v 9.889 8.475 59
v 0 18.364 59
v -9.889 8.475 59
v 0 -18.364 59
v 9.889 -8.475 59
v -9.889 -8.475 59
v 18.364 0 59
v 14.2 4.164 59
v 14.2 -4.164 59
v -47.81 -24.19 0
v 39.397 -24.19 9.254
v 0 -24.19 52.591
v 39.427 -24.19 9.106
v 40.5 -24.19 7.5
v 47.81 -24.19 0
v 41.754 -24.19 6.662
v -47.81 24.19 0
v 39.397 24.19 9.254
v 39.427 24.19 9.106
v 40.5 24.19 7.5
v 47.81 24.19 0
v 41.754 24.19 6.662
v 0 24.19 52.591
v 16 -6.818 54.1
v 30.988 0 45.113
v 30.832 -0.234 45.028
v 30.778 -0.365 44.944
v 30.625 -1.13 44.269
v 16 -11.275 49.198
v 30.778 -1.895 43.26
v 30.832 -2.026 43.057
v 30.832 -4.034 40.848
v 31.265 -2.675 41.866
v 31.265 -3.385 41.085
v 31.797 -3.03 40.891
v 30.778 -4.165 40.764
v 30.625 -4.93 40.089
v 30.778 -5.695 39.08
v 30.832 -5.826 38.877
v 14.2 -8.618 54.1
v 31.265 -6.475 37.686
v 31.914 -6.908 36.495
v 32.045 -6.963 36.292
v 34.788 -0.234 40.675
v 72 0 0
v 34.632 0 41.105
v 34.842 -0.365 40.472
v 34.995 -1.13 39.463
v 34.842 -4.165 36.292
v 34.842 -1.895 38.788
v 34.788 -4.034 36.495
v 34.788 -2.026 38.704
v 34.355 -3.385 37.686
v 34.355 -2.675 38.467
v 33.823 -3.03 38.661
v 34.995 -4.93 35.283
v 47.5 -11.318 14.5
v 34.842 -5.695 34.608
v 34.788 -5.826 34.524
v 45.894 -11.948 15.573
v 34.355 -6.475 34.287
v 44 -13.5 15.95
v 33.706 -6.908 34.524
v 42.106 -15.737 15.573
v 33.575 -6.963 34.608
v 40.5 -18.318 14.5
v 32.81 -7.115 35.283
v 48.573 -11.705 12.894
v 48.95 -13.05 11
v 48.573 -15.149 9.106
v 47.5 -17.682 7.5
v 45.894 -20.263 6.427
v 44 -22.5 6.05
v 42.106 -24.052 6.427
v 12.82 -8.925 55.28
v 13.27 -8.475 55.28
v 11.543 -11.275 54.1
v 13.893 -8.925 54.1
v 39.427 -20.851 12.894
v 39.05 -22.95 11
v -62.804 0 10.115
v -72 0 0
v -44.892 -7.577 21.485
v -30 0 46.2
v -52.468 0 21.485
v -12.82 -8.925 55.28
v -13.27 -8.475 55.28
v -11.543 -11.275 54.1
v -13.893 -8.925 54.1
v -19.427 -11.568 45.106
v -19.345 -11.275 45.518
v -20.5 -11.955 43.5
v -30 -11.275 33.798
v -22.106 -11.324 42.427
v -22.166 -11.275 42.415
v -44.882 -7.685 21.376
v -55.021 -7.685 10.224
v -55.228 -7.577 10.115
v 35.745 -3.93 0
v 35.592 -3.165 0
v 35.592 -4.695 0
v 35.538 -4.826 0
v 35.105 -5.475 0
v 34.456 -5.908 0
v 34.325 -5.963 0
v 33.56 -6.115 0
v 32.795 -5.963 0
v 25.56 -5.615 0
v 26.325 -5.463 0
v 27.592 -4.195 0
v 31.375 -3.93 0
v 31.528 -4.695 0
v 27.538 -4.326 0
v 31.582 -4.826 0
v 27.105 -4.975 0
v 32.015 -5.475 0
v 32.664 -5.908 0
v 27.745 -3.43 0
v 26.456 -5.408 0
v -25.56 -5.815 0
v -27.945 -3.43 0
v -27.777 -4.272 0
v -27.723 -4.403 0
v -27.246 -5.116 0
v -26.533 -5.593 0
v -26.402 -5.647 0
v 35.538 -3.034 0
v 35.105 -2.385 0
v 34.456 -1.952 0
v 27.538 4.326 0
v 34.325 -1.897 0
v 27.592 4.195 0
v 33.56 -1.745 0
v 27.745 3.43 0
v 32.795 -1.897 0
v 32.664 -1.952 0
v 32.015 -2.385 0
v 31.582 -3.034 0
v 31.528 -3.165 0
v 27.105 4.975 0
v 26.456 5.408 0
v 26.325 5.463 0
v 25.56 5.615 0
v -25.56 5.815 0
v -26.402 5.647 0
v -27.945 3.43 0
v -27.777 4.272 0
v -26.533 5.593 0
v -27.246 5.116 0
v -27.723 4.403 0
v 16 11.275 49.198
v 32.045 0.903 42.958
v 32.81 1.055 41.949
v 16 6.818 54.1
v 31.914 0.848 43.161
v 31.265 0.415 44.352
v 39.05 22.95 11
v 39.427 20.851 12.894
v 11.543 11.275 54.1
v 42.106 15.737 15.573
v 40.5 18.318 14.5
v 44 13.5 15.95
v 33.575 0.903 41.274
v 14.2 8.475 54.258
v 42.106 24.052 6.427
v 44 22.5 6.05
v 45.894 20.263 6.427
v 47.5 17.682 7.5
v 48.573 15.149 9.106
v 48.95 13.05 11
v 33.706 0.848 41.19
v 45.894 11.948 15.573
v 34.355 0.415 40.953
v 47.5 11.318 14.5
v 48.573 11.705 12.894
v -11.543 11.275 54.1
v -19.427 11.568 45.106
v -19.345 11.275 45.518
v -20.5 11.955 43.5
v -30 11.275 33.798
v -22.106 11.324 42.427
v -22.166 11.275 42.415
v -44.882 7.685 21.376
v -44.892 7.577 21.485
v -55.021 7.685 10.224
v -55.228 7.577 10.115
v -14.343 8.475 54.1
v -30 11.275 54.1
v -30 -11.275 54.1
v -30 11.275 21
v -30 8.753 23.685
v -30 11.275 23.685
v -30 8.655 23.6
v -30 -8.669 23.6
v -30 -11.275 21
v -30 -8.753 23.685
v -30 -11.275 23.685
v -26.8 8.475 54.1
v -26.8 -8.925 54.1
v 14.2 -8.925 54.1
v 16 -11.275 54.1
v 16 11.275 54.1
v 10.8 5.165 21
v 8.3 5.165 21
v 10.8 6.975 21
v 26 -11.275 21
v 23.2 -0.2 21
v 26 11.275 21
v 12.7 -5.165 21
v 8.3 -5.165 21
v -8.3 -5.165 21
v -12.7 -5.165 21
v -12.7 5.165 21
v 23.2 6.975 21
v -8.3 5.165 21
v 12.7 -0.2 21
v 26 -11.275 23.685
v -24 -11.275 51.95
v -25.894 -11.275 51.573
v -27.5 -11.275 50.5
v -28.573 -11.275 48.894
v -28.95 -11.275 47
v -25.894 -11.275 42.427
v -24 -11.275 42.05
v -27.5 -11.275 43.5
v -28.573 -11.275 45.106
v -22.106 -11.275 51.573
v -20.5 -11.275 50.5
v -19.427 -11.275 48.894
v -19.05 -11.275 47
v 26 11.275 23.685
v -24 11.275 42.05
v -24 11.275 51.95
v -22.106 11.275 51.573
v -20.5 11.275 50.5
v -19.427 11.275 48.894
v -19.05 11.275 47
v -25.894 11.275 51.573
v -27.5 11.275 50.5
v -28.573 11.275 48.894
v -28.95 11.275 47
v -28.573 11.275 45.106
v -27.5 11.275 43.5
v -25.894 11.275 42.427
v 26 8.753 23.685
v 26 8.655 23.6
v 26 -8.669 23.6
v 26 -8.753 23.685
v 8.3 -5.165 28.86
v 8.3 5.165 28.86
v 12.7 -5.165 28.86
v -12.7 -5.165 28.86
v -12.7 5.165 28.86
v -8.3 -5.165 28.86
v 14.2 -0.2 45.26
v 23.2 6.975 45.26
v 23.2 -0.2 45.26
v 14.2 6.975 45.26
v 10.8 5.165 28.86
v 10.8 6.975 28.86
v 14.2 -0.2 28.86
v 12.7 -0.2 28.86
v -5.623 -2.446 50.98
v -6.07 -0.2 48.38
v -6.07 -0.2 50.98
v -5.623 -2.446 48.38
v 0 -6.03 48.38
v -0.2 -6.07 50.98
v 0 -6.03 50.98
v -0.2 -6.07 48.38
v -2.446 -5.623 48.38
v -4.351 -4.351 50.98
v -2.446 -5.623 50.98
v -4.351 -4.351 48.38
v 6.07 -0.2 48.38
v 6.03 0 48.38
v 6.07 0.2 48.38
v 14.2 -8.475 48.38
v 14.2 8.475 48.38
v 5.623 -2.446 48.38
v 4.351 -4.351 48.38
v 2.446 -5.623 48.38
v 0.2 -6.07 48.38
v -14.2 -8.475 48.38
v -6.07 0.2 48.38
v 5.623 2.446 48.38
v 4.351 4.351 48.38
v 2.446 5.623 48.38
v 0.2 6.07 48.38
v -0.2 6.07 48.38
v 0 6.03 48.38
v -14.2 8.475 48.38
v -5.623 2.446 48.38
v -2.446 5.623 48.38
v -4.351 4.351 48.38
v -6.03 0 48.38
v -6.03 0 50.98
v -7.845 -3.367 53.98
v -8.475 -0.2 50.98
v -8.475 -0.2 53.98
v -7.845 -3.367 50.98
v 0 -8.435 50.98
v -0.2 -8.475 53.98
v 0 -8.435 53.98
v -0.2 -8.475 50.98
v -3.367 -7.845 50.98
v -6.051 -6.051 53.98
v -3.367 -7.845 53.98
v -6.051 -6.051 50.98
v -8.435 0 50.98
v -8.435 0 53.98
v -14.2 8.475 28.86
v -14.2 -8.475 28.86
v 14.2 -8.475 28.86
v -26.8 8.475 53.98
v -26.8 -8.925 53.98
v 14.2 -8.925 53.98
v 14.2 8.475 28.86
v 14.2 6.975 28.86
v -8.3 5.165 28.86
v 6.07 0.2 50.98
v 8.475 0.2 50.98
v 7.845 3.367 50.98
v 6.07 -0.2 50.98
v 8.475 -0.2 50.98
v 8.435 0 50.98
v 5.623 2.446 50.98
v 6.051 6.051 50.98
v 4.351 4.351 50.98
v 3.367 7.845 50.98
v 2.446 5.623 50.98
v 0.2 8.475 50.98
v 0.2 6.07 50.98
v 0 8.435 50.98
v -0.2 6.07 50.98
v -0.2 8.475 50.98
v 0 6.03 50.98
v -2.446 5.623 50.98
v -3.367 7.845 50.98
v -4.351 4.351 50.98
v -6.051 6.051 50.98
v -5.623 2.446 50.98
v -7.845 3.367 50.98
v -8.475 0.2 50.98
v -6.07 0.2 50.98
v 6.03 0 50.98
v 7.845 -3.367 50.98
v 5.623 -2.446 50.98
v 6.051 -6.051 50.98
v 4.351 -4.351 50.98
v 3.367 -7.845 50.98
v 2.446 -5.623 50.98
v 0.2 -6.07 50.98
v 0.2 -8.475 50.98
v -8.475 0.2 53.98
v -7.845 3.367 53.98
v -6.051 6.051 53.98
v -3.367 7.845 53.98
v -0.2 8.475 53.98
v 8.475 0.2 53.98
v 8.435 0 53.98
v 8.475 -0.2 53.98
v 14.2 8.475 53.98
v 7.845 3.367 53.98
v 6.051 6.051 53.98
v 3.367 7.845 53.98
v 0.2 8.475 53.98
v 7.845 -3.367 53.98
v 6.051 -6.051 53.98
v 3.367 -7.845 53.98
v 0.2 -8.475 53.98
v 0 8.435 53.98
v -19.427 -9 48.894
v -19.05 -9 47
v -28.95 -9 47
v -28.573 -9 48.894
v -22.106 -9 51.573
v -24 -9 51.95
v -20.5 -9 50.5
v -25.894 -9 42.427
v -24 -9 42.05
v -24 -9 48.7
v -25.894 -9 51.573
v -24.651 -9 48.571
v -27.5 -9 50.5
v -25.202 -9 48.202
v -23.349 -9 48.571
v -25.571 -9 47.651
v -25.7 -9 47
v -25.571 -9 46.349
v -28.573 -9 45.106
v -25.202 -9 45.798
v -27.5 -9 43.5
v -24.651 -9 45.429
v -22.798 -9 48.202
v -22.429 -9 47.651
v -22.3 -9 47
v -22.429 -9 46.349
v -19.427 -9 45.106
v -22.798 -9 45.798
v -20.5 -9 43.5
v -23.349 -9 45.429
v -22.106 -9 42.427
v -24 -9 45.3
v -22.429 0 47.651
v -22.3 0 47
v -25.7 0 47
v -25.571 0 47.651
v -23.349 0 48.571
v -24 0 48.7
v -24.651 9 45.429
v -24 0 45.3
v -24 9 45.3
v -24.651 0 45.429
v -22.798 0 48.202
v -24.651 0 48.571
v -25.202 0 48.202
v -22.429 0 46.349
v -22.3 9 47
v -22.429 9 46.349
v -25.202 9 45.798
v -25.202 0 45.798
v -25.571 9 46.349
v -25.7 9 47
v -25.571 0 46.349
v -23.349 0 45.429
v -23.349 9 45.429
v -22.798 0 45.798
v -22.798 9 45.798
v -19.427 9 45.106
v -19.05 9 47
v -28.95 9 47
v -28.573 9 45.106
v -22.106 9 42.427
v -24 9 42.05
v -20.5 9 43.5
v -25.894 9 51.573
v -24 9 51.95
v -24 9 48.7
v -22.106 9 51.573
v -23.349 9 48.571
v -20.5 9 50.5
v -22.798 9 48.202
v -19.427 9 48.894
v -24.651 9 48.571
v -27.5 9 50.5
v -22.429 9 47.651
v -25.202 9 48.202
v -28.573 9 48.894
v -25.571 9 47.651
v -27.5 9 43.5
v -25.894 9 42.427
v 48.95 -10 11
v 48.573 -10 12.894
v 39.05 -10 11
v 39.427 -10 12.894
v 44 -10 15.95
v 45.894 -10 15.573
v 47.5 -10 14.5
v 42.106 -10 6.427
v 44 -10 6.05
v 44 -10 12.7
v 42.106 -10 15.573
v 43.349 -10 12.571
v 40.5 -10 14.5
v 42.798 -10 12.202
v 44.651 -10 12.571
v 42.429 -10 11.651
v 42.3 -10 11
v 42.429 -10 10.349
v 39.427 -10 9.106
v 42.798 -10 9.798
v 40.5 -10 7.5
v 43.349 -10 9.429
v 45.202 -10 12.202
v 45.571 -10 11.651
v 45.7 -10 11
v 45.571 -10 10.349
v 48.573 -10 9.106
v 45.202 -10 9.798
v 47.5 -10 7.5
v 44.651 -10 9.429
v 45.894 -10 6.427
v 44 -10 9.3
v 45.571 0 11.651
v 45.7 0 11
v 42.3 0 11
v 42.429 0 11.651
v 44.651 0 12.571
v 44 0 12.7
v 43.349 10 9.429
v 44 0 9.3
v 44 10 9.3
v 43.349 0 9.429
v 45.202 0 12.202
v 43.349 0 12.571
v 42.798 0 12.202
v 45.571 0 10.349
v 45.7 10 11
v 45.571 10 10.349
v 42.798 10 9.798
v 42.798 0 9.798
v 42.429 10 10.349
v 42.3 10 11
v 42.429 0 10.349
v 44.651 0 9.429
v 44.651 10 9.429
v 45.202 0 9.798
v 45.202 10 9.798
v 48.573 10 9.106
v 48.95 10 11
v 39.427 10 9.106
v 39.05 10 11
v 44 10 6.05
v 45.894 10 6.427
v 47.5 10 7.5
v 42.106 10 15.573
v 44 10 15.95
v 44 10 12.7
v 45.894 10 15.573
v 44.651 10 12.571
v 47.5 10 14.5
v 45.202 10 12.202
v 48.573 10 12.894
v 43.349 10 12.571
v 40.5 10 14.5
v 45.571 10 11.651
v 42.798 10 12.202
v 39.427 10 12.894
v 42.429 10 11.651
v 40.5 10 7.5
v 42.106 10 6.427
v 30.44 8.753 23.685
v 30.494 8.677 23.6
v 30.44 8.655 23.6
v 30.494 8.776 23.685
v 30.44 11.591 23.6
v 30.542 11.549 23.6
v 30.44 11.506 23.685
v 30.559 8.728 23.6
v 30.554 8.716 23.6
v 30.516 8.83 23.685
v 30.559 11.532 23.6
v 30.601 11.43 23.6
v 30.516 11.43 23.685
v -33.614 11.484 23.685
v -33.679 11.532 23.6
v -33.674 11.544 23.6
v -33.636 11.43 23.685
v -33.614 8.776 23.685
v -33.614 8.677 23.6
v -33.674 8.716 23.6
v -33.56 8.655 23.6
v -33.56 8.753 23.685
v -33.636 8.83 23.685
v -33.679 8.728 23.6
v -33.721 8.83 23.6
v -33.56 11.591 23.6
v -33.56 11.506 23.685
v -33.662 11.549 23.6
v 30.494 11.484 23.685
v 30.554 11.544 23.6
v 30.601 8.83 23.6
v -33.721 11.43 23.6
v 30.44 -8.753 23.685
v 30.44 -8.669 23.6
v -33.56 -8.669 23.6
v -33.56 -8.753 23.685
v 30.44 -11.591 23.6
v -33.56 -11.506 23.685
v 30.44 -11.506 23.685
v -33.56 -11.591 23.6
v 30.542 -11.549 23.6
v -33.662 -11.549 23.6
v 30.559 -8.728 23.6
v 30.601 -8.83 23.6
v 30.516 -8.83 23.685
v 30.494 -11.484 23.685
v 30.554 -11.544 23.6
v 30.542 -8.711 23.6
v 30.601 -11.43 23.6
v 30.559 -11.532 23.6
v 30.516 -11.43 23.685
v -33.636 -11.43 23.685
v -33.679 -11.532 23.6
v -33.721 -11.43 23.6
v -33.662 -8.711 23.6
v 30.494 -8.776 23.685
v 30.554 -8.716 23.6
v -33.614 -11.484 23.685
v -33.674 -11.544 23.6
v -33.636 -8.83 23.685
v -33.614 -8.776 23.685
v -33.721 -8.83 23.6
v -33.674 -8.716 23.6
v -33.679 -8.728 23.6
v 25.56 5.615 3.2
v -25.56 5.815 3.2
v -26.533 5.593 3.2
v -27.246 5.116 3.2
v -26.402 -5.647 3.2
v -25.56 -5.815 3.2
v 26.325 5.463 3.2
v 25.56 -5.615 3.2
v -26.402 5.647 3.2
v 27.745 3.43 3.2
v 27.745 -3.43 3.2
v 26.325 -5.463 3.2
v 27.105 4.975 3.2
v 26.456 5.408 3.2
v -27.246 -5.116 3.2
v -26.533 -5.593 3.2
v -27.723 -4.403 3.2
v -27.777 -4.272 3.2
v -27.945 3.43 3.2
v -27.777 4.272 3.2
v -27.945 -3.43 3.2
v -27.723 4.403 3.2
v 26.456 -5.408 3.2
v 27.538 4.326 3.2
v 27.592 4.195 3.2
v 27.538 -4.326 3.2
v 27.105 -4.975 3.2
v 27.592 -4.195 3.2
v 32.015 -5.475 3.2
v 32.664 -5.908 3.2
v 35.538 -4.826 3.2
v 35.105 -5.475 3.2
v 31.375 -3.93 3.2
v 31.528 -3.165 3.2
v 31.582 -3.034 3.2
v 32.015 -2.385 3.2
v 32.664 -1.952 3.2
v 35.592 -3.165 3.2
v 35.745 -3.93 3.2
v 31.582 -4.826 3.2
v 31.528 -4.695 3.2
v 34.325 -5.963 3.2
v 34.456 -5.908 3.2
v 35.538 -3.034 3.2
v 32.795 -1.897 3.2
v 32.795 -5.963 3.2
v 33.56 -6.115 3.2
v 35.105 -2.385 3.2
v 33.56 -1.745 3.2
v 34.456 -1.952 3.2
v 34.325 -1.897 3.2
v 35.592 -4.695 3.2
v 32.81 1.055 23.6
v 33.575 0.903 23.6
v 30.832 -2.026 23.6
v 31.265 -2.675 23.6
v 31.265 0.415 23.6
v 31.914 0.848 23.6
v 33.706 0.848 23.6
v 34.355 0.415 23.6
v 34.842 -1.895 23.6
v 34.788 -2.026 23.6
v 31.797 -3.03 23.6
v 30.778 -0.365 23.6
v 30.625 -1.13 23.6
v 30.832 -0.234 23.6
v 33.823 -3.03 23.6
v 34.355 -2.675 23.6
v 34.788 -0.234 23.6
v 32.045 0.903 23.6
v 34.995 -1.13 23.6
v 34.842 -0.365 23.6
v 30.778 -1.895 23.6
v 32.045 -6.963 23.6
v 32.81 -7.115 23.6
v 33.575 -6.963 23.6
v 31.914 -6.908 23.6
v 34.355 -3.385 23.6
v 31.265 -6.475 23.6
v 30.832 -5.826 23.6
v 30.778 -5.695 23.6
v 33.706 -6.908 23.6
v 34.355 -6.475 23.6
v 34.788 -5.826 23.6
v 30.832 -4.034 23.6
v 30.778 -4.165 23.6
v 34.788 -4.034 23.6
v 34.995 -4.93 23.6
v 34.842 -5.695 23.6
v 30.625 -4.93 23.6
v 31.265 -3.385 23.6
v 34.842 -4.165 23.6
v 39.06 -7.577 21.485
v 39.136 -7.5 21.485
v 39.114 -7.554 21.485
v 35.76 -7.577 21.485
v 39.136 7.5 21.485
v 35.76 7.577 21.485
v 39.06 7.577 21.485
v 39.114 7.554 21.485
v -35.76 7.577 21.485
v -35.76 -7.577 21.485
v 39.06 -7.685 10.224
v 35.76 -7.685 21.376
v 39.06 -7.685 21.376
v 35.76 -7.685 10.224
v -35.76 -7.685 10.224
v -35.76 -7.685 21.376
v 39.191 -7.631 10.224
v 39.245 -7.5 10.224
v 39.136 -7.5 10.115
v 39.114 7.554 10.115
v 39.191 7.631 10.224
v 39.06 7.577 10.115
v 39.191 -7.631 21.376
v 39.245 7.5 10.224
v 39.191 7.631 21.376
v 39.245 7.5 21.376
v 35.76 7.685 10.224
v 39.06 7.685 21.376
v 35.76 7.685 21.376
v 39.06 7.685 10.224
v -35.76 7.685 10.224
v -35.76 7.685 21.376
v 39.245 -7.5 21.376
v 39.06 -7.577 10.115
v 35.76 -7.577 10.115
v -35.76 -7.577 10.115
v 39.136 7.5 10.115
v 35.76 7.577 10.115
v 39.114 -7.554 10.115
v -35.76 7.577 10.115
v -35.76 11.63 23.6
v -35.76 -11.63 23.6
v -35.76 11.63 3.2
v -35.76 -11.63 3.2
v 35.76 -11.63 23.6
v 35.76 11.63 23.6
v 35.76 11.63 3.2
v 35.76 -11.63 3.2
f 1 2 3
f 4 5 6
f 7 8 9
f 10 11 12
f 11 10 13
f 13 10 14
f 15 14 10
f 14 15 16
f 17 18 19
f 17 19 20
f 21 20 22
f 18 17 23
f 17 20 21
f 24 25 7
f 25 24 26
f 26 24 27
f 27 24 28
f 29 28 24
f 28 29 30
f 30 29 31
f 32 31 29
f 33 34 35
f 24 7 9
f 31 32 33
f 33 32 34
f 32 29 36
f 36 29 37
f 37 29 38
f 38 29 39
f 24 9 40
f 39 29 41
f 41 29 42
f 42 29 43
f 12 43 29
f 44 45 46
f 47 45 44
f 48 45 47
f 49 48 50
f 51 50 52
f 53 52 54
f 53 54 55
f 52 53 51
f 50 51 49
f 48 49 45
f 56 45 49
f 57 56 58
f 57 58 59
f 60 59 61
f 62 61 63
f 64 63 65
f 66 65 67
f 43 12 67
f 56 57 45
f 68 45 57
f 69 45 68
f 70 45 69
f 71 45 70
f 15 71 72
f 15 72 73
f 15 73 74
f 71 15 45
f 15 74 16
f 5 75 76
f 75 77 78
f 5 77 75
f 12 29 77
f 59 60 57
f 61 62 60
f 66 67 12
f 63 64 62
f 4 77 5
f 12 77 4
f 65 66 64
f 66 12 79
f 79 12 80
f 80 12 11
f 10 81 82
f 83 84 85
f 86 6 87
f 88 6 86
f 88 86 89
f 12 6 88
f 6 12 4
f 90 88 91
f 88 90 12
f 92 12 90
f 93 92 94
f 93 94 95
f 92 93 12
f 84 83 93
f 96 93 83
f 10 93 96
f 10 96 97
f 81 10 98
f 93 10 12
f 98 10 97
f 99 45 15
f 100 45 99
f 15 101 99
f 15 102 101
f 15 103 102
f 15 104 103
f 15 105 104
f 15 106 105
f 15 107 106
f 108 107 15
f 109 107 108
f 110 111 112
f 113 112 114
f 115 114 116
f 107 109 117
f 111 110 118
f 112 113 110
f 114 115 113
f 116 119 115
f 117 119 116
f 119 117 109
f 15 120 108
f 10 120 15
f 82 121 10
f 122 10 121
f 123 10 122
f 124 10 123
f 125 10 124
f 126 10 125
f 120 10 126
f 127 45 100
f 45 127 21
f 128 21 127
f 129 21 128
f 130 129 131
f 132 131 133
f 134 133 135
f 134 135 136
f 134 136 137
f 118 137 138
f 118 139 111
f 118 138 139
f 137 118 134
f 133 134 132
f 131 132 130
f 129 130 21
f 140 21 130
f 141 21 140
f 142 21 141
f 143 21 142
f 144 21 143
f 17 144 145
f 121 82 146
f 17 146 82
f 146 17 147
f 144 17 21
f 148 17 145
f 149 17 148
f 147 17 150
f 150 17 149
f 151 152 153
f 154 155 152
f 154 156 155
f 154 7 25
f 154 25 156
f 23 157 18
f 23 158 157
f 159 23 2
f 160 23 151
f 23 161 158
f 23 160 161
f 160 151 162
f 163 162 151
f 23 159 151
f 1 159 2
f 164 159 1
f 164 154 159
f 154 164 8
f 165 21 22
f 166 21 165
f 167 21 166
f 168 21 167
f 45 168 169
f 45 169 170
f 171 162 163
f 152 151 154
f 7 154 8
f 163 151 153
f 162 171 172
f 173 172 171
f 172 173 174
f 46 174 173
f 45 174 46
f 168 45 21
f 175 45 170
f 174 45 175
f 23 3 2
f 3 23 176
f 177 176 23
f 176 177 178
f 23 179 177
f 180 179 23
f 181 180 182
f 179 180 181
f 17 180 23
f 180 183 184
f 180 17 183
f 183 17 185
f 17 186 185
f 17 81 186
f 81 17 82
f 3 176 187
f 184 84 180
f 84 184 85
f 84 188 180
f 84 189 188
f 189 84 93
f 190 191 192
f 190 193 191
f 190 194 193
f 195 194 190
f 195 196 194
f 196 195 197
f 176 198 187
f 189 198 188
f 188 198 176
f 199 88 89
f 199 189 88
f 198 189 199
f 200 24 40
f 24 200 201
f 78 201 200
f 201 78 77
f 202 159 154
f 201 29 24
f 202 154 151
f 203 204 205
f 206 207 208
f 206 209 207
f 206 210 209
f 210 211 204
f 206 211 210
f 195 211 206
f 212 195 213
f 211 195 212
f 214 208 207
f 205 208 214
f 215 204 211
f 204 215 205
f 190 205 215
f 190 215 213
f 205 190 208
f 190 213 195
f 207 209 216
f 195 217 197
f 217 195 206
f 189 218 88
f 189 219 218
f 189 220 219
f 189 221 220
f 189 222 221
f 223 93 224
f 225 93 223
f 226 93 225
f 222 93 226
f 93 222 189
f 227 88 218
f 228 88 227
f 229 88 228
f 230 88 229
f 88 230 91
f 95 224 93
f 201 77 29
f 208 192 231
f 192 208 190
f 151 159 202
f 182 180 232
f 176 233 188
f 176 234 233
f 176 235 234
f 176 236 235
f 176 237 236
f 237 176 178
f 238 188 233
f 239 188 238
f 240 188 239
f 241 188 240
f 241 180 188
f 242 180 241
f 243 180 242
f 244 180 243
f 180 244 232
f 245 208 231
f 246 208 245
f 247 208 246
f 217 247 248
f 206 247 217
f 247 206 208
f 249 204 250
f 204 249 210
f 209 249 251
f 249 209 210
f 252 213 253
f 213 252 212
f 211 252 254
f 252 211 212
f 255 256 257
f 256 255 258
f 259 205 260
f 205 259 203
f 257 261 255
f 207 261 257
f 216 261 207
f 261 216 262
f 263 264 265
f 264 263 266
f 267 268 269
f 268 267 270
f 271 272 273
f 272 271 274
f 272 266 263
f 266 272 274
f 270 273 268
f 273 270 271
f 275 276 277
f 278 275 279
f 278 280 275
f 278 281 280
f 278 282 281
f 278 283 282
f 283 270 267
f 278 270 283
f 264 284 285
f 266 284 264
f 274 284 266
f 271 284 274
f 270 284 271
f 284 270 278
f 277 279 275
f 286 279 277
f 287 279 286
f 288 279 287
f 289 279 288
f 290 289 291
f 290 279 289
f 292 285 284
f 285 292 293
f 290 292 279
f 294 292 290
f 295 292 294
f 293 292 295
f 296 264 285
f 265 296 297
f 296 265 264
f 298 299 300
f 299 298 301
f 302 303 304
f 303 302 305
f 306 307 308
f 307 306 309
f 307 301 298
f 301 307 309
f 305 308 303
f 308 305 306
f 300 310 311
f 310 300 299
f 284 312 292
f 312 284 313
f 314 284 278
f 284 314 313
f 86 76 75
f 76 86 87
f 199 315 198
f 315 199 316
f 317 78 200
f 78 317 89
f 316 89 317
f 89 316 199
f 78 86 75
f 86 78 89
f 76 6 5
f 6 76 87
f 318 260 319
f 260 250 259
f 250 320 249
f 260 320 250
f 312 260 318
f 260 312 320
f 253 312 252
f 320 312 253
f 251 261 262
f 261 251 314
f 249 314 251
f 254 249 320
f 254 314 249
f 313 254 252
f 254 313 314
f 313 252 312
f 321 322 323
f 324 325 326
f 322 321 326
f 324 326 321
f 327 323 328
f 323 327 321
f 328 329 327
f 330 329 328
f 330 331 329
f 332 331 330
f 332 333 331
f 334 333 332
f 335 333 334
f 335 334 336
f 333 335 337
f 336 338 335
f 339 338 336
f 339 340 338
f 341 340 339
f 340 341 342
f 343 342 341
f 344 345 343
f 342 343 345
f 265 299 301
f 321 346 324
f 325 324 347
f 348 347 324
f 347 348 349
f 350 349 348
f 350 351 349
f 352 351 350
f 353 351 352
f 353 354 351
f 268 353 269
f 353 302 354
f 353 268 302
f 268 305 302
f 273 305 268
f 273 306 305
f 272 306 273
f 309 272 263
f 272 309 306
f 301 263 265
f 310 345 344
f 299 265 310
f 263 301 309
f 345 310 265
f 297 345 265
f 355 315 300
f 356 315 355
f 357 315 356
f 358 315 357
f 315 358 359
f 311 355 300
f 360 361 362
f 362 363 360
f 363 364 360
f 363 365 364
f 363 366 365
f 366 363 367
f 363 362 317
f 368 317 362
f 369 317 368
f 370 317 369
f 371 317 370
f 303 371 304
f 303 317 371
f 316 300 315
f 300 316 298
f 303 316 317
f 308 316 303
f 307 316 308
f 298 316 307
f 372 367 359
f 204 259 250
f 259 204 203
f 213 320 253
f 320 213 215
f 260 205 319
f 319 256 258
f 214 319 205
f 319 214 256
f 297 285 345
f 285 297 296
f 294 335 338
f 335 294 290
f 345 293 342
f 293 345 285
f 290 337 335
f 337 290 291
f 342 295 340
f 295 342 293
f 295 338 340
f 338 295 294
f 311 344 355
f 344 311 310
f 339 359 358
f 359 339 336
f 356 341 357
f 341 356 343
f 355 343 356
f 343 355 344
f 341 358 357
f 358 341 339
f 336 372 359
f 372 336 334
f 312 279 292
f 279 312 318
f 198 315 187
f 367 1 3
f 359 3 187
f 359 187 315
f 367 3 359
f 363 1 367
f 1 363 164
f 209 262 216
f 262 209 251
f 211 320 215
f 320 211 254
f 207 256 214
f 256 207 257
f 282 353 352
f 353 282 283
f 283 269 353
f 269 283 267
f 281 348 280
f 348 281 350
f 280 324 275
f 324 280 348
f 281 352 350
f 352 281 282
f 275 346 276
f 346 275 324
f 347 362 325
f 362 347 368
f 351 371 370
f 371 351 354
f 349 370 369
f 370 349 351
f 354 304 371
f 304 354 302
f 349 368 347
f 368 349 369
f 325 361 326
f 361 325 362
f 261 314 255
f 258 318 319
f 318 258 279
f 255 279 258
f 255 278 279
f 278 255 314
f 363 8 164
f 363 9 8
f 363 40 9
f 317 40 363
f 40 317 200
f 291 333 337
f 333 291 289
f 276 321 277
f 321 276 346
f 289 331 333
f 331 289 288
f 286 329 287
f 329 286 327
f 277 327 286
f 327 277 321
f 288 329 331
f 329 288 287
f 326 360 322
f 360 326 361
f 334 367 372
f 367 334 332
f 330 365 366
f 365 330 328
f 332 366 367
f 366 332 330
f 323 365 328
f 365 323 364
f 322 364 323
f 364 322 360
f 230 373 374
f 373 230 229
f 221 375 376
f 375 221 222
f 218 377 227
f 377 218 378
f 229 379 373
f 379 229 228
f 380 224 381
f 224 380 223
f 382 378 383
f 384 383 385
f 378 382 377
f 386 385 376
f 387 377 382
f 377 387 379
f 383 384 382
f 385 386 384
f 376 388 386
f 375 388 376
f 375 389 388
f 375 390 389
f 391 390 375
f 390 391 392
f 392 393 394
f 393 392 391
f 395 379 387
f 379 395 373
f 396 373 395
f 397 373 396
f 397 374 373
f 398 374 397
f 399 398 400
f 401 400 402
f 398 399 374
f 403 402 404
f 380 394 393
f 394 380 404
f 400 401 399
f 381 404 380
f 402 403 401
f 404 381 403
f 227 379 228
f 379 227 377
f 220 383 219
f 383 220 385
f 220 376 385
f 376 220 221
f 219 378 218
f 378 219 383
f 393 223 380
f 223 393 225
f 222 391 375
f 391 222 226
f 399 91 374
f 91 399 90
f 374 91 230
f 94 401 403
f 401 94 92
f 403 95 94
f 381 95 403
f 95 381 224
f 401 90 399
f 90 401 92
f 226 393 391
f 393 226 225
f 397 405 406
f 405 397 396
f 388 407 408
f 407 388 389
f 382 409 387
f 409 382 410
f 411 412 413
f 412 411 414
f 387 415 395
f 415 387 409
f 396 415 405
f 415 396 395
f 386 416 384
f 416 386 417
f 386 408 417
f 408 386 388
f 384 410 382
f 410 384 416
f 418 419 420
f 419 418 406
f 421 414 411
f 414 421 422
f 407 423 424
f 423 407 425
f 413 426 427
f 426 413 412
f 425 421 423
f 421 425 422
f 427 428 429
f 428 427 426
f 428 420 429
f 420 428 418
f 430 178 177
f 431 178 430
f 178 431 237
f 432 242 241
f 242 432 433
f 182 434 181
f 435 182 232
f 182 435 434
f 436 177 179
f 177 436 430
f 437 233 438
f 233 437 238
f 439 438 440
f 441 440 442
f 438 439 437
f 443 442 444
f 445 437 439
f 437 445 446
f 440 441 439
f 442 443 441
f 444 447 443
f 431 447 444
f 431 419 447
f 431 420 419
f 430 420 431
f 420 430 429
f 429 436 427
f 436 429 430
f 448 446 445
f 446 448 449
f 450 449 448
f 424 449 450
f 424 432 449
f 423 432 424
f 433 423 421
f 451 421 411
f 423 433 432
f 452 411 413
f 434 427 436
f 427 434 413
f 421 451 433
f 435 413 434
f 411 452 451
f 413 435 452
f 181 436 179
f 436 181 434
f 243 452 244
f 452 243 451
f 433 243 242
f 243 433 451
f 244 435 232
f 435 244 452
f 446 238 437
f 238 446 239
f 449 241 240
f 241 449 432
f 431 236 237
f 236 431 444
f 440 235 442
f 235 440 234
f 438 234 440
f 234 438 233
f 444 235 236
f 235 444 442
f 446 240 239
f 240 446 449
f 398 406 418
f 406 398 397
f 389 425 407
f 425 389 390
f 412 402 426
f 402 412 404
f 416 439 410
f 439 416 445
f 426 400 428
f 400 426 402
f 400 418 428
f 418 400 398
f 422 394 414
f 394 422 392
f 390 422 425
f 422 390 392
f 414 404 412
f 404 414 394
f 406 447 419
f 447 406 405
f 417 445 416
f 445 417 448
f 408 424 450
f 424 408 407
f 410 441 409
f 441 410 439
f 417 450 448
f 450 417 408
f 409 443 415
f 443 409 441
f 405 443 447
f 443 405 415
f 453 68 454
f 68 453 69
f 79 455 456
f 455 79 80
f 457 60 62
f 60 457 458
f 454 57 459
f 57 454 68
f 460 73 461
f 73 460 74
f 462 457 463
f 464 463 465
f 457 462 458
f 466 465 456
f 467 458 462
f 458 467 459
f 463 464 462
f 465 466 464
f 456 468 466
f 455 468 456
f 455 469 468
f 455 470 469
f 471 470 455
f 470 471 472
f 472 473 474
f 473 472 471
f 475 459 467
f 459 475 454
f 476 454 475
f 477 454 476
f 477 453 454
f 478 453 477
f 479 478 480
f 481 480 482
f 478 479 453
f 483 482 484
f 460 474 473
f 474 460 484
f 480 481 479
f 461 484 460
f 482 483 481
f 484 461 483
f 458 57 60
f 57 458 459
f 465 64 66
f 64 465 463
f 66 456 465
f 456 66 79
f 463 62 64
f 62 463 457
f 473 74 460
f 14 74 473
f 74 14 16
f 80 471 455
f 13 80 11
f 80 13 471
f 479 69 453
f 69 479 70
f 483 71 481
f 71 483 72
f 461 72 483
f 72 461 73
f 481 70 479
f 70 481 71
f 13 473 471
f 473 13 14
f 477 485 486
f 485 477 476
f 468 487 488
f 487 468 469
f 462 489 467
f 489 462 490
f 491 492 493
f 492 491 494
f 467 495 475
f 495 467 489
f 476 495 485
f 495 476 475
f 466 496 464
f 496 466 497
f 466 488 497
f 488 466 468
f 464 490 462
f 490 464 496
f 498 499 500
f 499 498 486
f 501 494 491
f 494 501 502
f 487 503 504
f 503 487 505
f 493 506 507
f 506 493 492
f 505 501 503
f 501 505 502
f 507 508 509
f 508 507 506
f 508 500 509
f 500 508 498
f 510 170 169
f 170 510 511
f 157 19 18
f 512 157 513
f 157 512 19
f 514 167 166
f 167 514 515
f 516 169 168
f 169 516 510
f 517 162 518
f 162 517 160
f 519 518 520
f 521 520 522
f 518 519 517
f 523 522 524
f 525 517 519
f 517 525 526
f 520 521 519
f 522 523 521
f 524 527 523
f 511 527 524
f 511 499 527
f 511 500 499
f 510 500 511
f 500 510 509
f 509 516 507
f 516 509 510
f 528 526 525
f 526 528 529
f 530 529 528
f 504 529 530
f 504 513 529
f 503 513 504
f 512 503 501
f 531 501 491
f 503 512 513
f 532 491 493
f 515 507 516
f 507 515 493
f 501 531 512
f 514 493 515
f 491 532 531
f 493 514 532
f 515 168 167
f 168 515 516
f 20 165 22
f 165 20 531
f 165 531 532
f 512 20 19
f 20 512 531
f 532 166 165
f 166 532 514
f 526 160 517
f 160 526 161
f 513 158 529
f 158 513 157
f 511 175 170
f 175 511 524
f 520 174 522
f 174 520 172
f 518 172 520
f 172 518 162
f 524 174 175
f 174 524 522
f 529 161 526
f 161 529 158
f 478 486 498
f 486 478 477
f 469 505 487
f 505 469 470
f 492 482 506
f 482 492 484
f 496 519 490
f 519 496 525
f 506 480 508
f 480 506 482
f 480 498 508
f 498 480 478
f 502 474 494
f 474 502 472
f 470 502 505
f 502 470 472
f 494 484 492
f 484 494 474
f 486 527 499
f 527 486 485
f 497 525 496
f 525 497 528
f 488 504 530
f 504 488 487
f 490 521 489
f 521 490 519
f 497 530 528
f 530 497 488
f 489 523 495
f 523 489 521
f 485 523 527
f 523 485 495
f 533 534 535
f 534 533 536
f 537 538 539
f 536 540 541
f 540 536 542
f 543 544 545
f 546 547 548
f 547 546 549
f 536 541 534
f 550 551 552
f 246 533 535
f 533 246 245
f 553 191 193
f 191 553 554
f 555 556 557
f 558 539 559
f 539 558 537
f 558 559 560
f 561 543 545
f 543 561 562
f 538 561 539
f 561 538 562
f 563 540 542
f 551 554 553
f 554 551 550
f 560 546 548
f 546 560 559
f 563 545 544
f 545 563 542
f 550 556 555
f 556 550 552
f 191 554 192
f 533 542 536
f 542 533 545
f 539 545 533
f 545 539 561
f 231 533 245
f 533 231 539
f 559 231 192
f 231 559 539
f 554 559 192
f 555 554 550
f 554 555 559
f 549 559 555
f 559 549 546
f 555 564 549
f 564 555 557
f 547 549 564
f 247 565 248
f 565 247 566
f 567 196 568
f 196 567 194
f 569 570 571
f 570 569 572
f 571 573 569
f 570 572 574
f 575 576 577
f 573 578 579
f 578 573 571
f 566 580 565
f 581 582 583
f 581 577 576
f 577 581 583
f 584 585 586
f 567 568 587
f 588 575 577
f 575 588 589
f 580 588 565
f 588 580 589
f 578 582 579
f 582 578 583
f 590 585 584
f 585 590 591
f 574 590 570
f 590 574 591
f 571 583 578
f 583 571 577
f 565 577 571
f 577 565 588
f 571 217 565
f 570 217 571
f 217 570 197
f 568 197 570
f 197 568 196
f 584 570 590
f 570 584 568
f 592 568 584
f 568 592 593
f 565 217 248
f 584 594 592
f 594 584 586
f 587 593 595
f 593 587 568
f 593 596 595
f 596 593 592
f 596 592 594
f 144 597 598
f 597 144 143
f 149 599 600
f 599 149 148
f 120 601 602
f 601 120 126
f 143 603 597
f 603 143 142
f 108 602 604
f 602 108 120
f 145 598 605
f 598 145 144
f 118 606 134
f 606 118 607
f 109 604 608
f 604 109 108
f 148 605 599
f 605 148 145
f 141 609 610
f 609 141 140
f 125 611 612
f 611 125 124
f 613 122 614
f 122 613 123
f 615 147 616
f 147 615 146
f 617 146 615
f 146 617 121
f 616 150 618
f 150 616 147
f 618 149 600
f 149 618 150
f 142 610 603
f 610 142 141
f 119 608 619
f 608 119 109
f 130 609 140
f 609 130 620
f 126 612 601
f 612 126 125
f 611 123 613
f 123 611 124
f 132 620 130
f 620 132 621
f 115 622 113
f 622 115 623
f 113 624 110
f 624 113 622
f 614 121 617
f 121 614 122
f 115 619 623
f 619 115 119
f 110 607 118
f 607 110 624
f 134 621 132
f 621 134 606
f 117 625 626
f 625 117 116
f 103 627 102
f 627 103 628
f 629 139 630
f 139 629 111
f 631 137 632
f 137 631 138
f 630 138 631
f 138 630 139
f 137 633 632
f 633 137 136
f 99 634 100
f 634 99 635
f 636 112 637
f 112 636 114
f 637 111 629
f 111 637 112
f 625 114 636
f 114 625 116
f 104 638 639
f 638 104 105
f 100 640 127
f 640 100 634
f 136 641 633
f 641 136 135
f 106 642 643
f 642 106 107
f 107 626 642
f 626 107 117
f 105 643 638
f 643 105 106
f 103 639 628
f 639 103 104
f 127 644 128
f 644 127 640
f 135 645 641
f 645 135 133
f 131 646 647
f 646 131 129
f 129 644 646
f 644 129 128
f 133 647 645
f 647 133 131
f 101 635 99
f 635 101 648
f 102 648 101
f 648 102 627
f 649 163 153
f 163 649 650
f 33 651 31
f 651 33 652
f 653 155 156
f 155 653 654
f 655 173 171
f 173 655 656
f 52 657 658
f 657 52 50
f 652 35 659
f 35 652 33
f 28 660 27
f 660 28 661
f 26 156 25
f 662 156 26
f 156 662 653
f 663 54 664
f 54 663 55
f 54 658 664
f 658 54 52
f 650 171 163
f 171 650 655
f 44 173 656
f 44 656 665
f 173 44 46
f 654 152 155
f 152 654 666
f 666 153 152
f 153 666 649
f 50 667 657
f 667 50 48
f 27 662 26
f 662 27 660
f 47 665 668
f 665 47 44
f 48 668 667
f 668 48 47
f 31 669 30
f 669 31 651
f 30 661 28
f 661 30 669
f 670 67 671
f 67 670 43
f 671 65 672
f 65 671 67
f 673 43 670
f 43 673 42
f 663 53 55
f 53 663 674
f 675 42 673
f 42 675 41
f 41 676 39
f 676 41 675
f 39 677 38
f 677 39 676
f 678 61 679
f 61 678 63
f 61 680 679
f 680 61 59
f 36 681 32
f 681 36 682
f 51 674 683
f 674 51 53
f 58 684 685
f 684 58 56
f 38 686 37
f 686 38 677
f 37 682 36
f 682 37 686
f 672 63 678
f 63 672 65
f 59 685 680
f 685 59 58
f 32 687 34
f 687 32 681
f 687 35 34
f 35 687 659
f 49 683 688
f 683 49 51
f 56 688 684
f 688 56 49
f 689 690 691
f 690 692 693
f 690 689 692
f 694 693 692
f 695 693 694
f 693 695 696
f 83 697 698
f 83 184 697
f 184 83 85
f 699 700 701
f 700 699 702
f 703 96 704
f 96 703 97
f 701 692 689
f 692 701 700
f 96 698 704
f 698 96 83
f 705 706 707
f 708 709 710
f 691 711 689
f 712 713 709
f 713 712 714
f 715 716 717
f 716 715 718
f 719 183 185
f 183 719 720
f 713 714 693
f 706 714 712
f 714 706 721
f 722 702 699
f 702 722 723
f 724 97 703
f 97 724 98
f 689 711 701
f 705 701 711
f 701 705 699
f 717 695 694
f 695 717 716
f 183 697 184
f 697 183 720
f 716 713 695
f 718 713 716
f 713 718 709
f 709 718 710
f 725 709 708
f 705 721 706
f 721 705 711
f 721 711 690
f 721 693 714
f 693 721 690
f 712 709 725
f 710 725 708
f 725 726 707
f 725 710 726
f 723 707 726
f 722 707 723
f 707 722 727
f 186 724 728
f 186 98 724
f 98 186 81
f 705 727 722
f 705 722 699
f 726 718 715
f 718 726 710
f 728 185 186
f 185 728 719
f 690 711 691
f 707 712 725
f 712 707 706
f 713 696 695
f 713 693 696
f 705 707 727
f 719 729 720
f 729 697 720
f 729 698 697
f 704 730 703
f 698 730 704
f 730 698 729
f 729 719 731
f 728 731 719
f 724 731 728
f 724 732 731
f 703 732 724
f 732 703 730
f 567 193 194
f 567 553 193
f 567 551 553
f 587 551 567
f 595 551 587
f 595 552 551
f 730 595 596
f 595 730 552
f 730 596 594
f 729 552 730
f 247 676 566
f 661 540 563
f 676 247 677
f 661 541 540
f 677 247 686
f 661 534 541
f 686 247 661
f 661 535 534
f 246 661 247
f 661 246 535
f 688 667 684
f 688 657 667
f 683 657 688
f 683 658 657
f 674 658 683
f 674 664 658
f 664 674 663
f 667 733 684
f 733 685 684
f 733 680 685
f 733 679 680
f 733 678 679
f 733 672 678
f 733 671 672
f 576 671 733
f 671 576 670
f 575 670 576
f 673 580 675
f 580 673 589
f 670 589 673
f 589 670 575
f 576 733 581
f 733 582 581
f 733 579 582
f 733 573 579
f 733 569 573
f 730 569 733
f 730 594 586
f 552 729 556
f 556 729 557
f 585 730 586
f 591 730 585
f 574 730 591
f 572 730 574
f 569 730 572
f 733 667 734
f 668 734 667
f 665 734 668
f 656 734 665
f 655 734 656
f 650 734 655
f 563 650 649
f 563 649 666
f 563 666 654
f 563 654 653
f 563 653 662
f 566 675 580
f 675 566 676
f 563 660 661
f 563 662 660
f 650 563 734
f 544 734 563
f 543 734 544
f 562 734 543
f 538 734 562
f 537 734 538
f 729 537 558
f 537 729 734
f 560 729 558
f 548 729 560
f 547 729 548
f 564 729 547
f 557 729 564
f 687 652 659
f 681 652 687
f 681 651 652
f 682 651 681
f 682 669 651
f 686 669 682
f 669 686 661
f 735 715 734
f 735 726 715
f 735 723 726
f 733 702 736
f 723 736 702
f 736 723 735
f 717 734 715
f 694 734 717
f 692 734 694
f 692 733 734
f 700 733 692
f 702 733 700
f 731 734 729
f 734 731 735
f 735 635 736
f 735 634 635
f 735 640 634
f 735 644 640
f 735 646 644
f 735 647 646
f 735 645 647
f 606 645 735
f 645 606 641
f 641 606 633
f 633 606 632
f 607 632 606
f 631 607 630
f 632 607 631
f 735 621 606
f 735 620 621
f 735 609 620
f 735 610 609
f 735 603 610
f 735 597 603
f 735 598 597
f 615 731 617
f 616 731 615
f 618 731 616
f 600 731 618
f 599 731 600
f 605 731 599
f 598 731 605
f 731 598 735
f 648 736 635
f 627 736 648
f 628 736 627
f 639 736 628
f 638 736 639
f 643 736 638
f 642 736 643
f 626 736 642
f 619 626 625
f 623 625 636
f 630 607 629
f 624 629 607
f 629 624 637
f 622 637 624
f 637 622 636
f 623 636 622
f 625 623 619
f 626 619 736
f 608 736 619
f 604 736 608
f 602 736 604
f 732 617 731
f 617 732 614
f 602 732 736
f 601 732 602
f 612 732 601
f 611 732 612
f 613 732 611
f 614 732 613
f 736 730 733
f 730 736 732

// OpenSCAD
// file: ../3d-iot-component-models/m3.scad
// m3 bolt negative space

$fn=16;

shaft_radius = 2.9/2;
head_radius = 5.9/2;

m3_bolt_space();

module m3_bolt_space(head_extra=2, shaft_extra=.25, head_height=40, length=40) {
    cylinder(h=head_height, r=head_radius + head_extra);

    translate([0, 0, -length])
        cylinder(h=length, r=shaft_radius + shaft_extra);
}
// file: ../3d-iot-component-models/toggle-switch-with-cover.scad
// A toggle switch ordered from https://www.sparkfun.com/products/11310

$fn = 16;

length = 28;
width = 16.55;
height = 19.12;

toggle_switch_with_cover();

module base() {
    cube([length, width, height]);
}

module prongs() {
    translate([1.5, width/5, -10.6]) cube([4, 3*width/5, 10.6]);
    translate([length-1.5-4, width/5, -10.6]) cube([4, 3*width/5, 10.6]);
    translate([-9, 1.5, -10.5]) cube([12, width/2 - 1.5, 26.5]);
}

module shaft() {
    translate([length/2, width/2, height]) cylinder(h = 13, r = 11.74 / 2);
    translate([length/2, width/2, height + 3]) cylinder(h = 6, r = 16.55 / 2);
}

module plate() {
    translate([0, 0, height + 6]) cube([40.6, 17, .9]);
}

module toggle() {
    translate([length/2, width/2, height + 9]) rotate([0, -15, 0]) {
        cylinder(h = 15, r = 7.22/2);    
    }
}

module cover() {
    color("red") translate([0, 0, height + 6.82])
        cube([40.6, width, 43.9 - 17.56]);
}

module toggle_switch_with_cover() {
    translate([0, 0, -height - .82 - 6]) 
        union() {
            base();
            color("silver") prongs();
            color("black") shaft();
            color("silver") plate();
            color("red") toggle();
            color("red") cover();
        }
}
// file: ../3d-iot-component-models/arduino-yun-mini.scad
// Arduino Yun Mini 3D model for planning

$fn = 16;

length = 71.12;
width = 22.86;
height = 1.3;
header_length = 64;
header_height = 9.2;
button_radius = 2;

arduino_yun_mini();

module board() {
    cube([length, width, height]);
}

module usb_power() {
    translate([-102, (width - 15) / 2, height - 4]) cube([105.5 + length, 15, 3 + 8]);
}

module header(y = 0, z = 0) {
    translate([2, y, z]) cube([header_length, 2.6, header_height]);
}

module leds() {
    translate([header_length, 0, height]) cube([2, width/2, 1]);
}

module button(y = 0) {
    translate([length - 2.75, y, height]) cylinder(r=button_radius, h=100);    
}

module bottom_button(bx = length - 2, by = 7.5) {
    translate([bx, by, -100]) cylinder(r=button_radius, h=100); 
}

module bottom_slot(y = 0) {
    hull() {
        translate([length - 10, y, -100]) cylinder(r=2, h=100); 
        translate([10, y, -100]) cylinder(r=2.2, h=100); 
    }
}

module hole(x = 0, y = 0) {
    translate([x, y, -9]) cylinder(h = 10 + height, r = 2.5/2);
}

module arduino_yun_mini() {
    difference() {
        color("green") board();
        union() {
            hole(x = 2.5, y = width - 4);
            hole(x = length - 2, y = 2);
        }
    }

    color("magenta") usb_power();
    color("red") leds();
    color("blue") button(y = 6.5);
    color("blue") button(y = 10.3);
    color("violet") bottom_button(y = 10.3);
    color("orange") hull() {
         bottom_slot(y = 8);
         bottom_slot(y = width - 8);
    }
    color("black") hull() {
        header(z = height, y = 0);
        translate([0, 0, 2.6]) rotate([-90, 0, 0]) {
            header(z = 0, y = 0);
        }
    }
    color("black") hull() {
        header(z = height, y = width - 2.6);
        translate([0, width - 2.6, 0]) rotate([90, 0, 0]) {
            header(z = 0, y = 0);
        }
    }
    color("silver") header(z = -9.2, y = 0);
    color("silver") header(z = -9.2, y = width - 2.6);
}
// main file
// WIFI Toggle Switch 3D Model, Arduino Yun Mini version

$fn = 8;

cube_side = 72;
cube_tip_clip = 59;
side_clip = cube_tip_clip*.41;

yun_length = 71.12;
yun_width = 22.86;
yun_height = 1.3 + 2*64;
yun_x = -yun_length/2;
yun_y = -yun_width/2;
yun_z = 13;
yun_skin = .2;

toggle_length = 28;
toggle_width = 16.55;
toggle_z = 55;

tip_surround_width = 3;
tip_width = toggle_width + 2*tip_surround_width;
tip_length = 46;

push_button();

module push_button() {
    // Uncomment one of the following 3 lines at a time
    body();
//    left_half();
//
//    yun_moved();
//    toggle_moved();
}

module left_half() {
    difference() {
        body();
        union() {
            translate([-2*cube_side, -4*cube_side, -1])
                cube([cube_side*4, cube_side*4, cube_side*2]);        
            yun_hole();
        }
    }
    color("pink") spike(x=-45);
    color("pink") spike(x=40);
    color("pink") spike(x=-30, z = 30);
}

module spike(x=0, skin=0, z = 0) {
    translate([x - skin, -5 - skin, 1.6 + z])
        cube([7 + 2*skin, 12 + 2*skin, 7 + 2*skin]);
}

module right_half() {
    difference() {
        body();
        union() {
            translate([-2*cube_side, 0, -1])
                cube([cube_side*4, cube_side*4, cube_side*2]);
            spike(x=-45, skin=.2);
            spike(x=40, skin=.2);
            spike(x=-30, skin=.2, z = 30);
            }
    }
}

module body() {
    difference() {
        union() {
            color("purple") difference() {
                box();
                yun_hole();
            }
            color("orange") tip();
        }
        union() {
	        toggle_moved(dx=yun_skin, dy=yun_skin, dz=yun_skin);
	        toggle_moved(dx=yun_skin, dy=yun_skin, dz=-yun_skin);
	        toggle_moved(dx=yun_skin, dy=-yun_skin, dz=yun_skin);
	        toggle_moved(dx=yun_skin, dy=-yun_skin, dz=-yun_skin);
	        toggle_moved(dx=-yun_skin, dy=yun_skin, dz=yun_skin);
	        toggle_moved(dx=-yun_skin, dy=yun_skin, dz=-yun_skin);
	        toggle_moved(dx=-yun_skin, dy=-yun_skin, dz=yun_skin);
	        toggle_moved(dx=-yun_skin, dy=-yun_skin, dz=-yun_skin);
            translate([-24, -9, 47]) rotate([90, 0, 0]) {
                bolt();
            }
            translate([-24, 9, 47]) rotate([-90, 0, 0]) {
                bolt();
            }
            translate([44, -10, 11]) rotate([90, 0, 0]) {
                bolt();
            }
            translate([44, 10, 11]) rotate([-90, 0, 0]) {
                bolt();
            }
	    }
    }
}

module yun_moved() {
    translate([yun_x, yun_y, yun_z])
        yun();
}

module yun_hole() {
    translate([yun_x - yun_skin, yun_y - yun_skin, yun_z - 9.6 - yun_skin])
        cube([yun_length + 2*yun_skin, yun_width + 2*yun_skin, 9.2*2 + 1.6 + 2*yun_skin]);
    minkowski() {
        yun_moved();
        sphere(r=yun_skin);
    }
}

module yun_holder() {
    translate([yun_x, yun_y, yun_z])
        yun();    
}

module tip() {
    translate([-30, -tip_width/2, yun_z + 8])
        difference() {
            union() {
                cube([tip_length, tip_width, cube_tip_clip + .1 - 26]);
                translate([10, 0, 0])
                    cube([tip_length, tip_width, 10]);
            }
            translate([0, 0, toggle_z])
                cube([tip_length/2, tip_width, 20]);
        }
}

module poly() {
    difference() {
        polyhedron(
            points=[[cube_side,0,0],
                [0,-cube_side,0],
                [-cube_side,0,0],
                [0,cube_side,0],
                [0,0,cube_side*1.1]],
            faces=[[0,1,4],[1,2,4],[2,3,4],[3,0,4],[1,0,3],[2,1,3]]);
        union() {
            translate([-2*cube_side, -2*cube_side, cube_tip_clip])
                cube([cube_side*4, cube_side*4, cube_side]);
            translate([-2*cube_side, -side_clip - 4*cube_side, -1])
                cube([cube_side*4, cube_side*4, cube_side]);
            translate([-2*cube_side, side_clip, -1])
                cube([cube_side*4, cube_side*4, cube_side]);            
        }
    }
}

module box() {
    difference() {
        poly();
        yun_holder();
    }
}

module toggle_moved(dx=0, dy=0, dz=0) {
    rotate([0, 0, 180]) {
        translate([-toggle_length/2 + dx, -toggle_width/2 + dy, toggle_z + dz])
            toggle();
    }
}

module yun() {
    include <../3d-iot-component-models/arduino-yun-mini.scad>
}

module toggle() {
    include <../3d-iot-component-models/toggle-switch-with-cover.scad>
}

module bolt() {
    include <../3d-iot-component-models/m3.scad>
}
